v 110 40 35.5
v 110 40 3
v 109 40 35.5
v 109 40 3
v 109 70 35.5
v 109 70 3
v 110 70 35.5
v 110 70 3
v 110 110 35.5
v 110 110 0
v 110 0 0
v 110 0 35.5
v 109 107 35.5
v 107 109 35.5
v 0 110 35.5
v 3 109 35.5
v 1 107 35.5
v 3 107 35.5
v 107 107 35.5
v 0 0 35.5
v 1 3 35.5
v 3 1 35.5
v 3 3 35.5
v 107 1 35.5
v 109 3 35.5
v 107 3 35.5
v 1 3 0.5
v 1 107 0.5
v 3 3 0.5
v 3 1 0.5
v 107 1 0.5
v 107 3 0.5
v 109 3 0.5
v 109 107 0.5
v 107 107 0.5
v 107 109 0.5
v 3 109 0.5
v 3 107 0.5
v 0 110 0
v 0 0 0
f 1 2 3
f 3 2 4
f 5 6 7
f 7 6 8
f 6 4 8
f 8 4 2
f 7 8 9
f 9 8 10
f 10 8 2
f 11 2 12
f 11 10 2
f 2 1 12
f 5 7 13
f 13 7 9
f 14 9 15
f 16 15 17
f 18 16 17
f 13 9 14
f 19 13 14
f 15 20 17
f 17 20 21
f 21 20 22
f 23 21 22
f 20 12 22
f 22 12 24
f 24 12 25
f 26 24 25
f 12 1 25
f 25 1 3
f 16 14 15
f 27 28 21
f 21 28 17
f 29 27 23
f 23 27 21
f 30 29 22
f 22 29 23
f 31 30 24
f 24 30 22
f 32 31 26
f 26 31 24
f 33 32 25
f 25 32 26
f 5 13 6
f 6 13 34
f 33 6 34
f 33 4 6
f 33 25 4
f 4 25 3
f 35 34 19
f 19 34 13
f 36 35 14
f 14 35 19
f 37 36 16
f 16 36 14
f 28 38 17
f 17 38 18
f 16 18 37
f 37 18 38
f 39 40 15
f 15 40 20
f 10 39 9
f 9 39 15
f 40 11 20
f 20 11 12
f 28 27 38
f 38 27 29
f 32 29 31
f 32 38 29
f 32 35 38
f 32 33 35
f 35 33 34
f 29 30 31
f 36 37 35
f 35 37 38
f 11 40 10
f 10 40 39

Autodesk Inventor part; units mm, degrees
ref_plane "YZ Plane" through (0, 0, 0) normal (1, 0, 0) x (0, 1, 0)
ref_plane "XZ Plane" through (0, 0, 0) normal (0, 1, 0) x (-1, 0, 0)
ref_plane "XY Plane" through (0, 0, 0) normal (0, 0, 1) x (1, 0, 0)
sketch "Szkic1" plane through (0, 0, 0) normal (0, 0, 1) x (1, 0, 0)
  line L0 (0, 0) -> (110, 0)
  line L1 (110, 0) -> (110, 110)
  line L2 (110, 110) -> (0, 110)
  line L3 (0, 110) -> (0, 0)
  line L4 (0, 0) -> (1, 0) construction
  line L5 (1, 0) -> (1, 1) construction
  line L6 (1, 1) -> (109, 1)
  line L7 (109, 1) -> (109, 109)
  line L8 (109, 109) -> (1, 109)
  line L9 (1, 109) -> (1, 1)
  line L10 (0, 110) -> (110, 0) construction
  line L11 (0, 0) -> (109, 109) construction
  point P0 (54.5, 54.5)
  dimension "d0" = 110
  dimension "d1" = 110
  dimension "d2" = 1
  dimension "d3" = 1
  dimension "d4" = 108
  dimension "d5" = 108
extrude "Wyciągnięcie proste1" add sketch "Szkic1" along normal blind 0.5 contours L3 L2 L1 L0 | L9 L8 L7 L6
sketch "Szkic2" plane through (0, 0, 0.5) normal (0, 0, 1) x (1, 0, 0)
  line L0 (3, 3) -> (110, 110)
  line L1 (3, 1) -> (107, 1)
  line L2 (109, 3) -> (109, 107)
  line L3 (107, 109) -> (3, 109)
  line L4 (1, 107) -> (1, 3)
  line L5 (3, 3) -> (107.9953, 107.9953) construction
  line L6 (109, 1) -> (1, 109) construction
  line L7 (0, 0) -> (110, 0)
  line L8 (110, 0) -> (110, 110)
  line L9 (110, 110) -> (0, 110)
  line L10 (0, 110) -> (0, 0)
  line L11 (0, 0) -> (107, 107) construction
  line L12 (107, 3) -> (0, 110) construction
  line L13 (3, 110) -> (3, 107)
  line L14 (3, 107) -> (0, 107)
  line L15 (-3, 113) -> (0, 110) construction
  line L16 (3, 113) -> (-3, 107) construction
  line L17 (1, 113) -> (3, 113)
  line L18 (0, 3) -> (3, 3)
  line L19 (3, 3) -> (3, 0)
  line L20 (107, 0) -> (107, 3)
  line L21 (107, 3) -> (110, 3)
  line L22 (110, 107) -> (107, 107)
  line L23 (107, 107) -> (107, 110)
  line L24 (3, 107) -> (107, 3)
  line L25 (109, 1) -> (110, 0)
  point P0 (0, 0)
  point P1 (0, 110)
  point P2 (55, 55)
  point P3 (55, 55)
  point P4 (55, 55)
  dimension "d8" = 107
  dimension "d9" = 107
  dimension "d10" = 110
  dimension "d11" = 110
  dimension "d14" = 6
  dimension "d17" = 360
extrude "Wyciągnięcie proste3" add sketch "Szkic2" along normal blind 35 contours L23 L9 L0 | L0 L8 L22 | L22 L8 L21 L2 | L3 L13 L9 L23 | L19 L7 L10 L18 | L14 L10 L9 L13 | L21 L8 L7 L20 | L18 L10 L14 L4 | L1 L20 L7 L19
sketch "Szkic3" plane through (110, 0, 0) normal (1, 0, 0) x (0, 0, -1)
  line L0 (0, 0) -> (0, 40)
  line L1 (0, 0) -> (0, 110) projected
  line L2 (0, 110) -> (0, 70)
  line L3 (0, 40) -> (-36.5, 40)
  line L4 (-36.5, 40) -> (-36.5, 70)
  line L5 (-36.5, 70) -> (0, 70)
  line L6 (0, 70) -> (0, 40)
  line L7 (0, 70) -> (-3, 70)
  line L8 (-3, 70) -> (-3, 40)
  point P0 (-35.5, 109)
  dimension "d21" = 40
  dimension "d22" = 40
  dimension "d23" = 3
extrude "Wyciągnięcie proste4" cut sketch "Szkic3" against normal blind 35 contours L3 L4 L5 L8
properties part number "dol_obodowy_110x110"
